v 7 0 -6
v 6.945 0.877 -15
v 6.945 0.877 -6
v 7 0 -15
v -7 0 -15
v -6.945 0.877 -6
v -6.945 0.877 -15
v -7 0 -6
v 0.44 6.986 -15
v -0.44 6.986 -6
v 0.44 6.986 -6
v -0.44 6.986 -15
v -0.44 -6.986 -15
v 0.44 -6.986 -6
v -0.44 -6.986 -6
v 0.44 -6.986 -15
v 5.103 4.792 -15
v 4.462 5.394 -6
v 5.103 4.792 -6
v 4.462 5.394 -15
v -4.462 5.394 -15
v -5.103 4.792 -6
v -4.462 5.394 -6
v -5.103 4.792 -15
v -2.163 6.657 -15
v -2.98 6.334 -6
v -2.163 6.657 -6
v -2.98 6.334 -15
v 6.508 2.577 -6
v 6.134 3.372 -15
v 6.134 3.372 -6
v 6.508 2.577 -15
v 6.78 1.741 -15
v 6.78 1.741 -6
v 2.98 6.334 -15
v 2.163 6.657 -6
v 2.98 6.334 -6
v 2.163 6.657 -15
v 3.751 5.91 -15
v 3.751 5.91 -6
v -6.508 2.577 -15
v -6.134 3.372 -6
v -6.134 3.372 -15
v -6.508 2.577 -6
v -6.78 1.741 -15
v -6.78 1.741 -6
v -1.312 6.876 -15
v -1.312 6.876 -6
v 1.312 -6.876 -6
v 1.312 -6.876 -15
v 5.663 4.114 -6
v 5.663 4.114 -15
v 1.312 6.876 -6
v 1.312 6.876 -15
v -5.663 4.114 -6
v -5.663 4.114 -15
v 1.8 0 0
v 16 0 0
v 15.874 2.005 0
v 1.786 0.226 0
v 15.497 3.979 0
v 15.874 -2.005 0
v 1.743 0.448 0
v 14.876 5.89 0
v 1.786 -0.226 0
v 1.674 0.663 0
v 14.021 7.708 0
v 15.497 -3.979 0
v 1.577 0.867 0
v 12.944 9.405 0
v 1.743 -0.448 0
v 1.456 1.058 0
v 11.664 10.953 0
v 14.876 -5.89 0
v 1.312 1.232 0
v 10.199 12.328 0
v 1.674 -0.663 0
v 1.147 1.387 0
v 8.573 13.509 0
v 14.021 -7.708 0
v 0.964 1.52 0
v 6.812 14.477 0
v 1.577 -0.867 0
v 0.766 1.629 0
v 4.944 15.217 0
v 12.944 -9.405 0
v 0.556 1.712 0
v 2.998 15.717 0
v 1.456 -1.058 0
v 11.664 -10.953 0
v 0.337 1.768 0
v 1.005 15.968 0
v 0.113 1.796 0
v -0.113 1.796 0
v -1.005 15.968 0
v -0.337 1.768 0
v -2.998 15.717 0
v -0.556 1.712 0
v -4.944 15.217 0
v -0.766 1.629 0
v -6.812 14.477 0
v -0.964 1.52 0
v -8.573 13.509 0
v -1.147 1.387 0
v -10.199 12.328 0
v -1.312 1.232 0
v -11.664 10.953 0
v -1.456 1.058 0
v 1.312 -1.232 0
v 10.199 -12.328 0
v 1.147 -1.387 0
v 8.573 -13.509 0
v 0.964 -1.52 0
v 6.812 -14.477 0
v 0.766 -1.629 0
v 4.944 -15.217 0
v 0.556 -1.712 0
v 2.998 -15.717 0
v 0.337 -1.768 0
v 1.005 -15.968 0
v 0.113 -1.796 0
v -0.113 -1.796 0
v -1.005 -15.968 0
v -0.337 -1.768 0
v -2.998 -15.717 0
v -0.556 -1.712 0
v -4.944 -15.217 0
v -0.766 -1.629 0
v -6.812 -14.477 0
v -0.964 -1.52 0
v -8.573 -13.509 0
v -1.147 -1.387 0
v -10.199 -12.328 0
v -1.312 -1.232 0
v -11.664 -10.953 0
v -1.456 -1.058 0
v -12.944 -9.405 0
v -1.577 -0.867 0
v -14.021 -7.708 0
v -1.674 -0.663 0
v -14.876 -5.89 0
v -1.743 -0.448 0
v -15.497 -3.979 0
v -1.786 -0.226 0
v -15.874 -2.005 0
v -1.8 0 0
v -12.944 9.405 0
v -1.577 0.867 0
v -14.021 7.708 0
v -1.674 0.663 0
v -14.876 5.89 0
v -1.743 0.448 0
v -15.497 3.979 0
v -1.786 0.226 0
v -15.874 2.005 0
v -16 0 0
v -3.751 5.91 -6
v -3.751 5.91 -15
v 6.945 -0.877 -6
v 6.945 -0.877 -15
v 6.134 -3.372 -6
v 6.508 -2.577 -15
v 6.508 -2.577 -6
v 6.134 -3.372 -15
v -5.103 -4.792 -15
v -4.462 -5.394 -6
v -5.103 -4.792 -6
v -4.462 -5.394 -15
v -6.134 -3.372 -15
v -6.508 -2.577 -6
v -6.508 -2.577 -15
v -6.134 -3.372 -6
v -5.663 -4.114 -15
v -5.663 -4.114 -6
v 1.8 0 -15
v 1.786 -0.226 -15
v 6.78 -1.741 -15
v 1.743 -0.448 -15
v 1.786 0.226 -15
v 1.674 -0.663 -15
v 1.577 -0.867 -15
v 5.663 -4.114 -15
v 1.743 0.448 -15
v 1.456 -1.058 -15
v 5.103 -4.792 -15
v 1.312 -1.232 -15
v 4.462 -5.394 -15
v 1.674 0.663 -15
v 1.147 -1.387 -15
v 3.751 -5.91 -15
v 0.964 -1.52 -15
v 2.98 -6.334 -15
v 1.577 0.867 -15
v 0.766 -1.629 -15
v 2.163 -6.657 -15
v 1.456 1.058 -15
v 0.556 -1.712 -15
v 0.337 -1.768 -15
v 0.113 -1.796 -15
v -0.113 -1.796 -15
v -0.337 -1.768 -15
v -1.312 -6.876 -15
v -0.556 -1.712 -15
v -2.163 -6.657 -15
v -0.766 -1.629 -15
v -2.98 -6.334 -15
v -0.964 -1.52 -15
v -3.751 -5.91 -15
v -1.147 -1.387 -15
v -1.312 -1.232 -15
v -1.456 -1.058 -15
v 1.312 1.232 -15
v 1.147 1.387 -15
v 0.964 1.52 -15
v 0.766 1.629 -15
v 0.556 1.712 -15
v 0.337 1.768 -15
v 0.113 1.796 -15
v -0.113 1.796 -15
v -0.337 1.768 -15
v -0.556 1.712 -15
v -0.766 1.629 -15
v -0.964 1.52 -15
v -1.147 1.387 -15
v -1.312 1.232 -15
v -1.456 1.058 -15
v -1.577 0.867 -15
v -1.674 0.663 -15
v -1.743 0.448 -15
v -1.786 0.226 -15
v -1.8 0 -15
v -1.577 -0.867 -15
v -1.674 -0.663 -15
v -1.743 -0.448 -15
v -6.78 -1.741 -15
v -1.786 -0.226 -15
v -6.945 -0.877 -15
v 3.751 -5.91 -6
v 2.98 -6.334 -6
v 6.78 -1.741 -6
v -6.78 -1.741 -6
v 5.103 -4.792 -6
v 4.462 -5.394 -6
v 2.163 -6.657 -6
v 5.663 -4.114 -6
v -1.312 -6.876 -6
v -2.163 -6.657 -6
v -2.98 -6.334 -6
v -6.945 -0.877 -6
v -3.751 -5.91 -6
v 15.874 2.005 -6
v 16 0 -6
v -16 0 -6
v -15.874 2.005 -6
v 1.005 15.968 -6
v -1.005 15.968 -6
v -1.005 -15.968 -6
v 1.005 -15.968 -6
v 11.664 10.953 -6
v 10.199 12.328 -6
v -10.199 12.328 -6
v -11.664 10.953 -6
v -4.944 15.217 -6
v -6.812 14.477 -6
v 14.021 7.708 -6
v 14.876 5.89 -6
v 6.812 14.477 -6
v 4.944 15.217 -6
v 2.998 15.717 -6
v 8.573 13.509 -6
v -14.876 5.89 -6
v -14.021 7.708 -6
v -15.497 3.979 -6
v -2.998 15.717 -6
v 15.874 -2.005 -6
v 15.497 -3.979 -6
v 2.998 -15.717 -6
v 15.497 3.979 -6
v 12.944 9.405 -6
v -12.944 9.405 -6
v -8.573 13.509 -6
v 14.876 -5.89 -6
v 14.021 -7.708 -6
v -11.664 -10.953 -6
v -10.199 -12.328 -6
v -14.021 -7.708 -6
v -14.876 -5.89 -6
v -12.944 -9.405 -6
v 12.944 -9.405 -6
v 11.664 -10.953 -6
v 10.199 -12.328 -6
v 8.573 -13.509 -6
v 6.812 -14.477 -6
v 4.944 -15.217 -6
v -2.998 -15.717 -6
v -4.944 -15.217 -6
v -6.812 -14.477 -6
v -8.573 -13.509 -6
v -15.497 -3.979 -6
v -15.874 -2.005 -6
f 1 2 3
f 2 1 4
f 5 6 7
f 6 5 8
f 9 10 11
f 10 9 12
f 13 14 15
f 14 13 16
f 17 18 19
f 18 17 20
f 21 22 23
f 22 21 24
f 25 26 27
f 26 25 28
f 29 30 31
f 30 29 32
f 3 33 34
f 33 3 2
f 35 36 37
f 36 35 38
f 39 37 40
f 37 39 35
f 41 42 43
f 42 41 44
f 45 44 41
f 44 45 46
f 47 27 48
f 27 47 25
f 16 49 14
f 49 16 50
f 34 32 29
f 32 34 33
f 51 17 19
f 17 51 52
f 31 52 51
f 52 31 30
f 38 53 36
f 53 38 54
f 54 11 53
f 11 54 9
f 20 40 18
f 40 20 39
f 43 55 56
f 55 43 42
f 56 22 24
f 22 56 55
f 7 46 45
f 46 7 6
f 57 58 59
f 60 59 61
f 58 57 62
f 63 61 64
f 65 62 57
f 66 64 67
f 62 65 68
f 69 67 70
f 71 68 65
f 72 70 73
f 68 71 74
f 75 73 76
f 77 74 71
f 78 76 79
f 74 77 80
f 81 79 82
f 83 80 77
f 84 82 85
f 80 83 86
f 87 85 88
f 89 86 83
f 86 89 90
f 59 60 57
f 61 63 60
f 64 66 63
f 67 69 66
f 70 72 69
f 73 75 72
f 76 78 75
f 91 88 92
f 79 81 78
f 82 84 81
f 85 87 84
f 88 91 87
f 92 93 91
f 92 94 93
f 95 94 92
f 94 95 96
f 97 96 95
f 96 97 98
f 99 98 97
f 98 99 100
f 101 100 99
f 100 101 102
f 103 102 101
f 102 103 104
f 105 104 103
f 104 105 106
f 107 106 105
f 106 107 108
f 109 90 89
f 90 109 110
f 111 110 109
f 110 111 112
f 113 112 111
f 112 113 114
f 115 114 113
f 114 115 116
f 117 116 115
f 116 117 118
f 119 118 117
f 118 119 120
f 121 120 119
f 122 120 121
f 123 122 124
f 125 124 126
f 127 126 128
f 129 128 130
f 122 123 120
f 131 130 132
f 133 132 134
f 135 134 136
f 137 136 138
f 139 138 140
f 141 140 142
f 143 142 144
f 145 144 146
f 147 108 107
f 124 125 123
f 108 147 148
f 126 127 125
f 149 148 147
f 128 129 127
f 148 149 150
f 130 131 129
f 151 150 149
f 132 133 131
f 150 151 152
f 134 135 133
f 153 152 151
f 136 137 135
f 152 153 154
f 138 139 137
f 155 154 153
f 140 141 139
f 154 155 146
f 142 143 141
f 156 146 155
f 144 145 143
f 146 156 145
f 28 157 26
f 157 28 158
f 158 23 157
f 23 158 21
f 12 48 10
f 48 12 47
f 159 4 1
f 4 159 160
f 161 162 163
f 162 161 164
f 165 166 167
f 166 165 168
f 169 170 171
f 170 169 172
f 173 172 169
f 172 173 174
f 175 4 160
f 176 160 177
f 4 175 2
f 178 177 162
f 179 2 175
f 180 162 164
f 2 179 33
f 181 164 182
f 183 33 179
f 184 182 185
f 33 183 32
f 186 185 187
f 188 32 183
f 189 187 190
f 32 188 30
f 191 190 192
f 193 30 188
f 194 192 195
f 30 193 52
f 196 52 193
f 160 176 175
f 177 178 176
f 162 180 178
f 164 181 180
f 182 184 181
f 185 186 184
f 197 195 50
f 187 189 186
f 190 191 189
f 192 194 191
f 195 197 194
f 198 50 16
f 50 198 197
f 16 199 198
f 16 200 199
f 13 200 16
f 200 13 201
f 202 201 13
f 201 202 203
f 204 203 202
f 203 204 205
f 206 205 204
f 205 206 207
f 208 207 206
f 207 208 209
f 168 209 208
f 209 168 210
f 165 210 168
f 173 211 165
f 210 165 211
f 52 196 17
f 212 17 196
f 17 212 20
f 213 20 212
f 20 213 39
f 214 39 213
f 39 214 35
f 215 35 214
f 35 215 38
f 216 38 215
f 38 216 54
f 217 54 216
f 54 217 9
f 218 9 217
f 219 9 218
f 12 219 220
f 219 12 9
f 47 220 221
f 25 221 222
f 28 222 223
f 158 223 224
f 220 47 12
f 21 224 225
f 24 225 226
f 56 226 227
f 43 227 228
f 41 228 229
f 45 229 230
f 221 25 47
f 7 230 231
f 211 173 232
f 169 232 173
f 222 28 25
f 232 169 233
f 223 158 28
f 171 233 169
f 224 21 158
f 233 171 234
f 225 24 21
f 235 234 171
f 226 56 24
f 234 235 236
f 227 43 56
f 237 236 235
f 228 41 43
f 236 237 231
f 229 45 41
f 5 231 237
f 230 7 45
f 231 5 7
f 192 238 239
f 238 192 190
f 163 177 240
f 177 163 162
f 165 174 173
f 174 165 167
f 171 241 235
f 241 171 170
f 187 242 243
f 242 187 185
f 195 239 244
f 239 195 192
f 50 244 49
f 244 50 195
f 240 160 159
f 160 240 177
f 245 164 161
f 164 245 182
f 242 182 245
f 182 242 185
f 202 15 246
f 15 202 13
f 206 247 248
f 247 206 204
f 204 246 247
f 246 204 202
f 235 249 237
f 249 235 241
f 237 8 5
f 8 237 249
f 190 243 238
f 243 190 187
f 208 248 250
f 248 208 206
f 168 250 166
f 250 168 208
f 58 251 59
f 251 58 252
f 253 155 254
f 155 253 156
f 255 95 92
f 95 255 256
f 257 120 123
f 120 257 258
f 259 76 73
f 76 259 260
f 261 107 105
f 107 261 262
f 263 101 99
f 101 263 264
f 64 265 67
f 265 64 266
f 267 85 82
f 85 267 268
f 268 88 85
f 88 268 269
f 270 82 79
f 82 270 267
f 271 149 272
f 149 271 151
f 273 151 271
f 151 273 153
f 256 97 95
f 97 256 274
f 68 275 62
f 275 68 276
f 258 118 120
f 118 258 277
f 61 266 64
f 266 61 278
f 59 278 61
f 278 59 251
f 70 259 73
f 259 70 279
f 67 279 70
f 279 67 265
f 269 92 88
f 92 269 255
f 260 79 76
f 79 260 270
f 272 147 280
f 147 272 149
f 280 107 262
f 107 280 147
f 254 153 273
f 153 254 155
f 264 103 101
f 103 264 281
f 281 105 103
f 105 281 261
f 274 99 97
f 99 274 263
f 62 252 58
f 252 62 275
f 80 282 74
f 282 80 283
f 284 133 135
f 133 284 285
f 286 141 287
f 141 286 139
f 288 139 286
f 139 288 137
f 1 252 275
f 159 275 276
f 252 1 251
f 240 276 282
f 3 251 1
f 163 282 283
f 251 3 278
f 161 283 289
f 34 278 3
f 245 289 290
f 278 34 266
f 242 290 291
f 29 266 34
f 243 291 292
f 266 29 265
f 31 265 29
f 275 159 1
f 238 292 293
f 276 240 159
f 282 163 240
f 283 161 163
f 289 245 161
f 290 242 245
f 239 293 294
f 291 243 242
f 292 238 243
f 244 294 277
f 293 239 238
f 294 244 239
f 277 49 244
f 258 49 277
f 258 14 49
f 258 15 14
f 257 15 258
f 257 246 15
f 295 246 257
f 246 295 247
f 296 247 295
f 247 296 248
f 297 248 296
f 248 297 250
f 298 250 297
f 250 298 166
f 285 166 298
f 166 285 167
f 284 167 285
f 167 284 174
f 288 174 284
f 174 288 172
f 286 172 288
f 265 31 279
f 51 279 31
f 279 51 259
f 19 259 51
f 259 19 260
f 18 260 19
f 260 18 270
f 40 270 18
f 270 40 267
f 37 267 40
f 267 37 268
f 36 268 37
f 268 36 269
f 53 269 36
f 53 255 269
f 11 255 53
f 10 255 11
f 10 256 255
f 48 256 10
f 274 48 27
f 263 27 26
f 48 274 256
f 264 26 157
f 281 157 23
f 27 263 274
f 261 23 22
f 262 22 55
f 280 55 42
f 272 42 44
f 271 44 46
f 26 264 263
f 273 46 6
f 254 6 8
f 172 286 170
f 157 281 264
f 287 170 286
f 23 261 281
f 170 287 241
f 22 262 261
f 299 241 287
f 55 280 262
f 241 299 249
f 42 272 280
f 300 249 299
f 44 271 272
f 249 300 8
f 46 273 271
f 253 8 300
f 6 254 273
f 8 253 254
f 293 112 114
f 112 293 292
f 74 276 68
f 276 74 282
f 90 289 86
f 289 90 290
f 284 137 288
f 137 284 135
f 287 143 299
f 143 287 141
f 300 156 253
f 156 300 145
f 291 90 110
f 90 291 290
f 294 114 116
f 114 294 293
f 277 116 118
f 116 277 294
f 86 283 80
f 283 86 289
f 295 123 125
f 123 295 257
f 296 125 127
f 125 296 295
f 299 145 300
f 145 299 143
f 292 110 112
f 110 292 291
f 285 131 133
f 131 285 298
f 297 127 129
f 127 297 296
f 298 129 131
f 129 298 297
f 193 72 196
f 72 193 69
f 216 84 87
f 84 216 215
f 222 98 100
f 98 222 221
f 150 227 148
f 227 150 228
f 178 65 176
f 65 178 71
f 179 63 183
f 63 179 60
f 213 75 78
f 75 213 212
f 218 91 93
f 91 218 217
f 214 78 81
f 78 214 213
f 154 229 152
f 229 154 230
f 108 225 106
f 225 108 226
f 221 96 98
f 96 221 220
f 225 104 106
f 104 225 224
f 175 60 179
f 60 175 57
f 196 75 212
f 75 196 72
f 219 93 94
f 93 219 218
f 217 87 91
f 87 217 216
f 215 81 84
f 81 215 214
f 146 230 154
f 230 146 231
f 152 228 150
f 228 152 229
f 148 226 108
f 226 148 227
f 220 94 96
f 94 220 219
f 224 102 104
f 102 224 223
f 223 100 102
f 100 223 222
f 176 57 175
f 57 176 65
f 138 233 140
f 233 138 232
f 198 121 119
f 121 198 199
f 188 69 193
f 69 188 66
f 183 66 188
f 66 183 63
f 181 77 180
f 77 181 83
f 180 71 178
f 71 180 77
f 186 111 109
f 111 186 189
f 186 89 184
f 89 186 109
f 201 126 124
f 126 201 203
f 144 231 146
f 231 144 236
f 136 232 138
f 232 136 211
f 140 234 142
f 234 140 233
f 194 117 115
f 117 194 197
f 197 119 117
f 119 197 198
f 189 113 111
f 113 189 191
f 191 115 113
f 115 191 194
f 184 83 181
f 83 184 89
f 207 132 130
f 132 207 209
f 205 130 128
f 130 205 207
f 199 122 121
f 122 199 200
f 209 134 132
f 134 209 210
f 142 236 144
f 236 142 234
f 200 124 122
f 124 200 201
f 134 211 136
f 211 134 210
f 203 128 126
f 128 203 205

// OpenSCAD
$fn = 50;


difference() {
	union() {
		translate(v = [0, 0, -15.0000000000]) {
			cylinder(h = 15, r = 7.0000000000);
		}
		translate(v = [0, 0, -6.0000000000]) {
			cylinder(h = 6, r = 16.0000000000);
		}
	}
	union() {
		#translate(v = [0, 0, -15]) {
			cylinder(h = 15, r = 1.8000000000);
		}
	}
}
